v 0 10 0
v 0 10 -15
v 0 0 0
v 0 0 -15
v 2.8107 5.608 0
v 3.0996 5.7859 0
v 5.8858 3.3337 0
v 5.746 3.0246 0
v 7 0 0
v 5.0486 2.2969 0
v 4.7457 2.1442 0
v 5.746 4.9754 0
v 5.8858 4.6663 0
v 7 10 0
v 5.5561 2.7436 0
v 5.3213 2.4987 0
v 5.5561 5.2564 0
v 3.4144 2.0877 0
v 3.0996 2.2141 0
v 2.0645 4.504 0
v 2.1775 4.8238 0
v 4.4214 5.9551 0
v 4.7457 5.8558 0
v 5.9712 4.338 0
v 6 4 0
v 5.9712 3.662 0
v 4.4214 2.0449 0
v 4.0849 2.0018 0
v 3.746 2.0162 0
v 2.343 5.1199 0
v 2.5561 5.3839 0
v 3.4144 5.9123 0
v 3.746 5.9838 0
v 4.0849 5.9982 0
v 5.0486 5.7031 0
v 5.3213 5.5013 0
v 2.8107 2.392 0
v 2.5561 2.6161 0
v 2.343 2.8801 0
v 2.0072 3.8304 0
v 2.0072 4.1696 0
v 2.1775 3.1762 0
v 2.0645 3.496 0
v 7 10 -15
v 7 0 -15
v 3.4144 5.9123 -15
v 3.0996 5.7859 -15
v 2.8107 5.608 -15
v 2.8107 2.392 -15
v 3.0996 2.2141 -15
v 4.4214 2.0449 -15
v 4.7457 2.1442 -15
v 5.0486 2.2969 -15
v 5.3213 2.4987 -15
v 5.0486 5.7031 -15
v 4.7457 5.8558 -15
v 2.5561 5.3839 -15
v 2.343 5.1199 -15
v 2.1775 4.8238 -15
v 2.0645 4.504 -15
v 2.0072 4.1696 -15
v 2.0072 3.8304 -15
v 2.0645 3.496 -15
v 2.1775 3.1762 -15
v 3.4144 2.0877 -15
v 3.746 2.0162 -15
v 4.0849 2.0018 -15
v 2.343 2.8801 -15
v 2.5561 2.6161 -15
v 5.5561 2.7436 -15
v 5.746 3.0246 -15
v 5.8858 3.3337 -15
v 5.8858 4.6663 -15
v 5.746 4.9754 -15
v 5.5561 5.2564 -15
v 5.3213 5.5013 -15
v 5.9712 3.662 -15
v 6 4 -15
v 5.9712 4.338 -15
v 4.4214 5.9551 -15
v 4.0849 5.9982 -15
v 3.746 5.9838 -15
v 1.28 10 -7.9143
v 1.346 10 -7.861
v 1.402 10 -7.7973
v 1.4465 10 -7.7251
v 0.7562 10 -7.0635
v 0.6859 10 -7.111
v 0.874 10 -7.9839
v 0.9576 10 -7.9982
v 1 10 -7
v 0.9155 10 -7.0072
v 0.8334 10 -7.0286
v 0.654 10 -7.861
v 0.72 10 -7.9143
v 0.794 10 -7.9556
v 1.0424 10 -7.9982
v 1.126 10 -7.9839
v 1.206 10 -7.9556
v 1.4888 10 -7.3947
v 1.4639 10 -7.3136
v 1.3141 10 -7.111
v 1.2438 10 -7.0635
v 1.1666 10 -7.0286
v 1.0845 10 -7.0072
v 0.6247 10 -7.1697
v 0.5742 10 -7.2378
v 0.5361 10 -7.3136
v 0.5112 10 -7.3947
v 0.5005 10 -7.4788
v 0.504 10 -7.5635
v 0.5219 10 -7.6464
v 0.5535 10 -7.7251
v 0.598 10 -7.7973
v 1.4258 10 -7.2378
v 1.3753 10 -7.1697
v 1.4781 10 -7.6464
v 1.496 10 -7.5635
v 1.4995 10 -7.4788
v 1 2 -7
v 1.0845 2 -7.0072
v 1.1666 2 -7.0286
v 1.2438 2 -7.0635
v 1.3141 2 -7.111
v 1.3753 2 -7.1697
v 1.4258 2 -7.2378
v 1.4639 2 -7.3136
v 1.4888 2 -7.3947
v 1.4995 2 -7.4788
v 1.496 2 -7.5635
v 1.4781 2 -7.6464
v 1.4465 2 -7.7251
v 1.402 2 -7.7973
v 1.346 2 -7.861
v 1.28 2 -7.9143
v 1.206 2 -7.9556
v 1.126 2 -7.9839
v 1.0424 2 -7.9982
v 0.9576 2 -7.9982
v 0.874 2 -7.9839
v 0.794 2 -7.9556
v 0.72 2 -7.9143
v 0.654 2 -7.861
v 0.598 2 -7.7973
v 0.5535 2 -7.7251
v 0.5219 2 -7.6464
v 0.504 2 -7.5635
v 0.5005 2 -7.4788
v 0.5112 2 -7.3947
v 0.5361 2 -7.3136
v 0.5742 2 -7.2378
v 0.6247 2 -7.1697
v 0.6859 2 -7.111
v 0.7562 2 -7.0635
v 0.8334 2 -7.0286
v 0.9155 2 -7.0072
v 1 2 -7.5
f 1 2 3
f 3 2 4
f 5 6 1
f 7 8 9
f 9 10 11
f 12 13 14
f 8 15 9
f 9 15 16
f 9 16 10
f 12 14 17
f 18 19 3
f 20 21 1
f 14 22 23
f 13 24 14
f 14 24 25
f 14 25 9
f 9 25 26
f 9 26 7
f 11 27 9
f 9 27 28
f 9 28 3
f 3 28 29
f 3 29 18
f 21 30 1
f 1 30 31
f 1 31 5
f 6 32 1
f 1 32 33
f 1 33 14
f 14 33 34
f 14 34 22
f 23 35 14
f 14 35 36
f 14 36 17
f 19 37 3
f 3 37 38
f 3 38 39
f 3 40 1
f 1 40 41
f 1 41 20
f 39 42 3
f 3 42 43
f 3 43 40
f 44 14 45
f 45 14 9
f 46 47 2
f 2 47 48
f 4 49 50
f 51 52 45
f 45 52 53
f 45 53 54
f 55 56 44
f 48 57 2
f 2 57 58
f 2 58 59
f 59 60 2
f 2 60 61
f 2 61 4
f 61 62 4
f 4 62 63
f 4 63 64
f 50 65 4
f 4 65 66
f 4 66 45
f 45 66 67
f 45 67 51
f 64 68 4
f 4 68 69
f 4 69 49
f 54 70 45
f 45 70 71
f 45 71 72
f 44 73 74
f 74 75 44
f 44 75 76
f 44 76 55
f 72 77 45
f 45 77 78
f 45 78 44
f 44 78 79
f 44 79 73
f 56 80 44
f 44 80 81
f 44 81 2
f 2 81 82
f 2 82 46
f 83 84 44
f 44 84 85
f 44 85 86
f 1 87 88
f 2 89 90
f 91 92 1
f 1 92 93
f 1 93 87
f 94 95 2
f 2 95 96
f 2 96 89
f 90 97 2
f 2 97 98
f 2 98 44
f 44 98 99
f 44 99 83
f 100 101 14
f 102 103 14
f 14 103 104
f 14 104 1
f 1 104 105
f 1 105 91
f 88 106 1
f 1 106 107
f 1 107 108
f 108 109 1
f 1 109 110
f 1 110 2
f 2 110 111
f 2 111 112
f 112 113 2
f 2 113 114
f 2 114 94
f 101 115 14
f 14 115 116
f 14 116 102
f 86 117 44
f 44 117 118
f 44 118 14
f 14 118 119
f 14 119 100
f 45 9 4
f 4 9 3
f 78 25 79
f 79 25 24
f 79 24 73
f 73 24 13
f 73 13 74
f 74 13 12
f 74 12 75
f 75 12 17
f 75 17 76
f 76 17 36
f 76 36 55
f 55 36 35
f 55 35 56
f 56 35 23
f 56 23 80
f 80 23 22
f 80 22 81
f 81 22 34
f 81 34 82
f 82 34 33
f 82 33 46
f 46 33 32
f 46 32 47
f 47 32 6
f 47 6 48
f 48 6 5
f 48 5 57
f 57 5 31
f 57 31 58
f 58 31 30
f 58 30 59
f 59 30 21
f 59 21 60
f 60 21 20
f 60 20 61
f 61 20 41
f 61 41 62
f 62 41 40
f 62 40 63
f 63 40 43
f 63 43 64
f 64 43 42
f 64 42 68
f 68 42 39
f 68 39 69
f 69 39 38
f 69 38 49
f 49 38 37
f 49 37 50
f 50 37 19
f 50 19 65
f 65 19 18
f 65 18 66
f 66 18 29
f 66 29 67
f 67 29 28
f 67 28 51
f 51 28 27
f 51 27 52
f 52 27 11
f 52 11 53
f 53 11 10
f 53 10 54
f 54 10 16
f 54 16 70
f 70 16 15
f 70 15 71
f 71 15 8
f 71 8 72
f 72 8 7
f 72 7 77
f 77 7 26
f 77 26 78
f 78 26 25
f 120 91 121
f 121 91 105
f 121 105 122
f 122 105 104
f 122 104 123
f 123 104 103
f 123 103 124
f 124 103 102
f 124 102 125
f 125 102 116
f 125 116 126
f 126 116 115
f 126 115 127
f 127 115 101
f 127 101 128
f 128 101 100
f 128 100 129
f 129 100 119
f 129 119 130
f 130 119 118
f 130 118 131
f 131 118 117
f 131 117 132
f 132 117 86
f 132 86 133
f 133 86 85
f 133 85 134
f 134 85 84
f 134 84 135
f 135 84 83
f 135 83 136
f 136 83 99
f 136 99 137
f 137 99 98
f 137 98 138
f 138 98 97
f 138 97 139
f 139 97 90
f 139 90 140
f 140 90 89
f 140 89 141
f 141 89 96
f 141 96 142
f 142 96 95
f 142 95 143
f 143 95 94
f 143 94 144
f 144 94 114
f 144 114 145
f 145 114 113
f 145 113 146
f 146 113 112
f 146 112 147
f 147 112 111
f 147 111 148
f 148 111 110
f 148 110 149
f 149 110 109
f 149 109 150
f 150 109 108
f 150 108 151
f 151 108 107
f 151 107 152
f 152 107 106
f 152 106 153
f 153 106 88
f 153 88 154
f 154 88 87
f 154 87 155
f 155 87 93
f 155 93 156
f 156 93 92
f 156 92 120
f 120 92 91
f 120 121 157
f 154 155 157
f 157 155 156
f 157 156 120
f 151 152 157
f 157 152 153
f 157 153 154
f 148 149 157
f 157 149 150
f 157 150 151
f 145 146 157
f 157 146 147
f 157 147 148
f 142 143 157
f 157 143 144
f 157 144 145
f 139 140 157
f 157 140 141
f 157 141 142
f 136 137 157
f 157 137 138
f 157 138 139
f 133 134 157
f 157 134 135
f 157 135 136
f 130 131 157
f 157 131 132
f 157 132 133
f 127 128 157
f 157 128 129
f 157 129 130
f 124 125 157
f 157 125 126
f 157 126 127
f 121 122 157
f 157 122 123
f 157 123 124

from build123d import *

# Parameters (mm, degrees)
SKETCH_1_W          = 7
SKETCH_1_H          = 15
EXTRUDE_1_DEPTH     = 10
SKETCH_2_R          = 2
CUT_EXTRUDE_1_DEPTH = 16
SKETCH_3_R          = 0.5
CUT_EXTRUDE_2_DEPTH = 8


with BuildPart() as part:
    # 草图1 → 凸台-拉伸1 (new body)
    with BuildSketch(Plane(origin=(0, 0, 0), x_dir=(1, 0, 0), z_dir=(0, 1, 0))):
        with Locations((3.5, 7.5)):
            Rectangle(SKETCH_1_W, SKETCH_1_H)
    extrude(amount=EXTRUDE_1_DEPTH)

    # 草图2 → 切除-拉伸1 (cut, through all)
    with BuildSketch(Plane.XY):
        with Locations((4, 4)):
            Circle(SKETCH_2_R)
    extrude(amount=-CUT_EXTRUDE_1_DEPTH, mode=Mode.SUBTRACT)

    # 草图3 → 切除-拉伸2 (cut)
    with BuildSketch(Plane(origin=(0, 10, 0), x_dir=(1, 0, 0), z_dir=(0, 1, 0))):
        with Locations((1, 7.5)):
            Circle(SKETCH_3_R)
    extrude(amount=-CUT_EXTRUDE_2_DEPTH, mode=Mode.SUBTRACT)


solid = part.part
